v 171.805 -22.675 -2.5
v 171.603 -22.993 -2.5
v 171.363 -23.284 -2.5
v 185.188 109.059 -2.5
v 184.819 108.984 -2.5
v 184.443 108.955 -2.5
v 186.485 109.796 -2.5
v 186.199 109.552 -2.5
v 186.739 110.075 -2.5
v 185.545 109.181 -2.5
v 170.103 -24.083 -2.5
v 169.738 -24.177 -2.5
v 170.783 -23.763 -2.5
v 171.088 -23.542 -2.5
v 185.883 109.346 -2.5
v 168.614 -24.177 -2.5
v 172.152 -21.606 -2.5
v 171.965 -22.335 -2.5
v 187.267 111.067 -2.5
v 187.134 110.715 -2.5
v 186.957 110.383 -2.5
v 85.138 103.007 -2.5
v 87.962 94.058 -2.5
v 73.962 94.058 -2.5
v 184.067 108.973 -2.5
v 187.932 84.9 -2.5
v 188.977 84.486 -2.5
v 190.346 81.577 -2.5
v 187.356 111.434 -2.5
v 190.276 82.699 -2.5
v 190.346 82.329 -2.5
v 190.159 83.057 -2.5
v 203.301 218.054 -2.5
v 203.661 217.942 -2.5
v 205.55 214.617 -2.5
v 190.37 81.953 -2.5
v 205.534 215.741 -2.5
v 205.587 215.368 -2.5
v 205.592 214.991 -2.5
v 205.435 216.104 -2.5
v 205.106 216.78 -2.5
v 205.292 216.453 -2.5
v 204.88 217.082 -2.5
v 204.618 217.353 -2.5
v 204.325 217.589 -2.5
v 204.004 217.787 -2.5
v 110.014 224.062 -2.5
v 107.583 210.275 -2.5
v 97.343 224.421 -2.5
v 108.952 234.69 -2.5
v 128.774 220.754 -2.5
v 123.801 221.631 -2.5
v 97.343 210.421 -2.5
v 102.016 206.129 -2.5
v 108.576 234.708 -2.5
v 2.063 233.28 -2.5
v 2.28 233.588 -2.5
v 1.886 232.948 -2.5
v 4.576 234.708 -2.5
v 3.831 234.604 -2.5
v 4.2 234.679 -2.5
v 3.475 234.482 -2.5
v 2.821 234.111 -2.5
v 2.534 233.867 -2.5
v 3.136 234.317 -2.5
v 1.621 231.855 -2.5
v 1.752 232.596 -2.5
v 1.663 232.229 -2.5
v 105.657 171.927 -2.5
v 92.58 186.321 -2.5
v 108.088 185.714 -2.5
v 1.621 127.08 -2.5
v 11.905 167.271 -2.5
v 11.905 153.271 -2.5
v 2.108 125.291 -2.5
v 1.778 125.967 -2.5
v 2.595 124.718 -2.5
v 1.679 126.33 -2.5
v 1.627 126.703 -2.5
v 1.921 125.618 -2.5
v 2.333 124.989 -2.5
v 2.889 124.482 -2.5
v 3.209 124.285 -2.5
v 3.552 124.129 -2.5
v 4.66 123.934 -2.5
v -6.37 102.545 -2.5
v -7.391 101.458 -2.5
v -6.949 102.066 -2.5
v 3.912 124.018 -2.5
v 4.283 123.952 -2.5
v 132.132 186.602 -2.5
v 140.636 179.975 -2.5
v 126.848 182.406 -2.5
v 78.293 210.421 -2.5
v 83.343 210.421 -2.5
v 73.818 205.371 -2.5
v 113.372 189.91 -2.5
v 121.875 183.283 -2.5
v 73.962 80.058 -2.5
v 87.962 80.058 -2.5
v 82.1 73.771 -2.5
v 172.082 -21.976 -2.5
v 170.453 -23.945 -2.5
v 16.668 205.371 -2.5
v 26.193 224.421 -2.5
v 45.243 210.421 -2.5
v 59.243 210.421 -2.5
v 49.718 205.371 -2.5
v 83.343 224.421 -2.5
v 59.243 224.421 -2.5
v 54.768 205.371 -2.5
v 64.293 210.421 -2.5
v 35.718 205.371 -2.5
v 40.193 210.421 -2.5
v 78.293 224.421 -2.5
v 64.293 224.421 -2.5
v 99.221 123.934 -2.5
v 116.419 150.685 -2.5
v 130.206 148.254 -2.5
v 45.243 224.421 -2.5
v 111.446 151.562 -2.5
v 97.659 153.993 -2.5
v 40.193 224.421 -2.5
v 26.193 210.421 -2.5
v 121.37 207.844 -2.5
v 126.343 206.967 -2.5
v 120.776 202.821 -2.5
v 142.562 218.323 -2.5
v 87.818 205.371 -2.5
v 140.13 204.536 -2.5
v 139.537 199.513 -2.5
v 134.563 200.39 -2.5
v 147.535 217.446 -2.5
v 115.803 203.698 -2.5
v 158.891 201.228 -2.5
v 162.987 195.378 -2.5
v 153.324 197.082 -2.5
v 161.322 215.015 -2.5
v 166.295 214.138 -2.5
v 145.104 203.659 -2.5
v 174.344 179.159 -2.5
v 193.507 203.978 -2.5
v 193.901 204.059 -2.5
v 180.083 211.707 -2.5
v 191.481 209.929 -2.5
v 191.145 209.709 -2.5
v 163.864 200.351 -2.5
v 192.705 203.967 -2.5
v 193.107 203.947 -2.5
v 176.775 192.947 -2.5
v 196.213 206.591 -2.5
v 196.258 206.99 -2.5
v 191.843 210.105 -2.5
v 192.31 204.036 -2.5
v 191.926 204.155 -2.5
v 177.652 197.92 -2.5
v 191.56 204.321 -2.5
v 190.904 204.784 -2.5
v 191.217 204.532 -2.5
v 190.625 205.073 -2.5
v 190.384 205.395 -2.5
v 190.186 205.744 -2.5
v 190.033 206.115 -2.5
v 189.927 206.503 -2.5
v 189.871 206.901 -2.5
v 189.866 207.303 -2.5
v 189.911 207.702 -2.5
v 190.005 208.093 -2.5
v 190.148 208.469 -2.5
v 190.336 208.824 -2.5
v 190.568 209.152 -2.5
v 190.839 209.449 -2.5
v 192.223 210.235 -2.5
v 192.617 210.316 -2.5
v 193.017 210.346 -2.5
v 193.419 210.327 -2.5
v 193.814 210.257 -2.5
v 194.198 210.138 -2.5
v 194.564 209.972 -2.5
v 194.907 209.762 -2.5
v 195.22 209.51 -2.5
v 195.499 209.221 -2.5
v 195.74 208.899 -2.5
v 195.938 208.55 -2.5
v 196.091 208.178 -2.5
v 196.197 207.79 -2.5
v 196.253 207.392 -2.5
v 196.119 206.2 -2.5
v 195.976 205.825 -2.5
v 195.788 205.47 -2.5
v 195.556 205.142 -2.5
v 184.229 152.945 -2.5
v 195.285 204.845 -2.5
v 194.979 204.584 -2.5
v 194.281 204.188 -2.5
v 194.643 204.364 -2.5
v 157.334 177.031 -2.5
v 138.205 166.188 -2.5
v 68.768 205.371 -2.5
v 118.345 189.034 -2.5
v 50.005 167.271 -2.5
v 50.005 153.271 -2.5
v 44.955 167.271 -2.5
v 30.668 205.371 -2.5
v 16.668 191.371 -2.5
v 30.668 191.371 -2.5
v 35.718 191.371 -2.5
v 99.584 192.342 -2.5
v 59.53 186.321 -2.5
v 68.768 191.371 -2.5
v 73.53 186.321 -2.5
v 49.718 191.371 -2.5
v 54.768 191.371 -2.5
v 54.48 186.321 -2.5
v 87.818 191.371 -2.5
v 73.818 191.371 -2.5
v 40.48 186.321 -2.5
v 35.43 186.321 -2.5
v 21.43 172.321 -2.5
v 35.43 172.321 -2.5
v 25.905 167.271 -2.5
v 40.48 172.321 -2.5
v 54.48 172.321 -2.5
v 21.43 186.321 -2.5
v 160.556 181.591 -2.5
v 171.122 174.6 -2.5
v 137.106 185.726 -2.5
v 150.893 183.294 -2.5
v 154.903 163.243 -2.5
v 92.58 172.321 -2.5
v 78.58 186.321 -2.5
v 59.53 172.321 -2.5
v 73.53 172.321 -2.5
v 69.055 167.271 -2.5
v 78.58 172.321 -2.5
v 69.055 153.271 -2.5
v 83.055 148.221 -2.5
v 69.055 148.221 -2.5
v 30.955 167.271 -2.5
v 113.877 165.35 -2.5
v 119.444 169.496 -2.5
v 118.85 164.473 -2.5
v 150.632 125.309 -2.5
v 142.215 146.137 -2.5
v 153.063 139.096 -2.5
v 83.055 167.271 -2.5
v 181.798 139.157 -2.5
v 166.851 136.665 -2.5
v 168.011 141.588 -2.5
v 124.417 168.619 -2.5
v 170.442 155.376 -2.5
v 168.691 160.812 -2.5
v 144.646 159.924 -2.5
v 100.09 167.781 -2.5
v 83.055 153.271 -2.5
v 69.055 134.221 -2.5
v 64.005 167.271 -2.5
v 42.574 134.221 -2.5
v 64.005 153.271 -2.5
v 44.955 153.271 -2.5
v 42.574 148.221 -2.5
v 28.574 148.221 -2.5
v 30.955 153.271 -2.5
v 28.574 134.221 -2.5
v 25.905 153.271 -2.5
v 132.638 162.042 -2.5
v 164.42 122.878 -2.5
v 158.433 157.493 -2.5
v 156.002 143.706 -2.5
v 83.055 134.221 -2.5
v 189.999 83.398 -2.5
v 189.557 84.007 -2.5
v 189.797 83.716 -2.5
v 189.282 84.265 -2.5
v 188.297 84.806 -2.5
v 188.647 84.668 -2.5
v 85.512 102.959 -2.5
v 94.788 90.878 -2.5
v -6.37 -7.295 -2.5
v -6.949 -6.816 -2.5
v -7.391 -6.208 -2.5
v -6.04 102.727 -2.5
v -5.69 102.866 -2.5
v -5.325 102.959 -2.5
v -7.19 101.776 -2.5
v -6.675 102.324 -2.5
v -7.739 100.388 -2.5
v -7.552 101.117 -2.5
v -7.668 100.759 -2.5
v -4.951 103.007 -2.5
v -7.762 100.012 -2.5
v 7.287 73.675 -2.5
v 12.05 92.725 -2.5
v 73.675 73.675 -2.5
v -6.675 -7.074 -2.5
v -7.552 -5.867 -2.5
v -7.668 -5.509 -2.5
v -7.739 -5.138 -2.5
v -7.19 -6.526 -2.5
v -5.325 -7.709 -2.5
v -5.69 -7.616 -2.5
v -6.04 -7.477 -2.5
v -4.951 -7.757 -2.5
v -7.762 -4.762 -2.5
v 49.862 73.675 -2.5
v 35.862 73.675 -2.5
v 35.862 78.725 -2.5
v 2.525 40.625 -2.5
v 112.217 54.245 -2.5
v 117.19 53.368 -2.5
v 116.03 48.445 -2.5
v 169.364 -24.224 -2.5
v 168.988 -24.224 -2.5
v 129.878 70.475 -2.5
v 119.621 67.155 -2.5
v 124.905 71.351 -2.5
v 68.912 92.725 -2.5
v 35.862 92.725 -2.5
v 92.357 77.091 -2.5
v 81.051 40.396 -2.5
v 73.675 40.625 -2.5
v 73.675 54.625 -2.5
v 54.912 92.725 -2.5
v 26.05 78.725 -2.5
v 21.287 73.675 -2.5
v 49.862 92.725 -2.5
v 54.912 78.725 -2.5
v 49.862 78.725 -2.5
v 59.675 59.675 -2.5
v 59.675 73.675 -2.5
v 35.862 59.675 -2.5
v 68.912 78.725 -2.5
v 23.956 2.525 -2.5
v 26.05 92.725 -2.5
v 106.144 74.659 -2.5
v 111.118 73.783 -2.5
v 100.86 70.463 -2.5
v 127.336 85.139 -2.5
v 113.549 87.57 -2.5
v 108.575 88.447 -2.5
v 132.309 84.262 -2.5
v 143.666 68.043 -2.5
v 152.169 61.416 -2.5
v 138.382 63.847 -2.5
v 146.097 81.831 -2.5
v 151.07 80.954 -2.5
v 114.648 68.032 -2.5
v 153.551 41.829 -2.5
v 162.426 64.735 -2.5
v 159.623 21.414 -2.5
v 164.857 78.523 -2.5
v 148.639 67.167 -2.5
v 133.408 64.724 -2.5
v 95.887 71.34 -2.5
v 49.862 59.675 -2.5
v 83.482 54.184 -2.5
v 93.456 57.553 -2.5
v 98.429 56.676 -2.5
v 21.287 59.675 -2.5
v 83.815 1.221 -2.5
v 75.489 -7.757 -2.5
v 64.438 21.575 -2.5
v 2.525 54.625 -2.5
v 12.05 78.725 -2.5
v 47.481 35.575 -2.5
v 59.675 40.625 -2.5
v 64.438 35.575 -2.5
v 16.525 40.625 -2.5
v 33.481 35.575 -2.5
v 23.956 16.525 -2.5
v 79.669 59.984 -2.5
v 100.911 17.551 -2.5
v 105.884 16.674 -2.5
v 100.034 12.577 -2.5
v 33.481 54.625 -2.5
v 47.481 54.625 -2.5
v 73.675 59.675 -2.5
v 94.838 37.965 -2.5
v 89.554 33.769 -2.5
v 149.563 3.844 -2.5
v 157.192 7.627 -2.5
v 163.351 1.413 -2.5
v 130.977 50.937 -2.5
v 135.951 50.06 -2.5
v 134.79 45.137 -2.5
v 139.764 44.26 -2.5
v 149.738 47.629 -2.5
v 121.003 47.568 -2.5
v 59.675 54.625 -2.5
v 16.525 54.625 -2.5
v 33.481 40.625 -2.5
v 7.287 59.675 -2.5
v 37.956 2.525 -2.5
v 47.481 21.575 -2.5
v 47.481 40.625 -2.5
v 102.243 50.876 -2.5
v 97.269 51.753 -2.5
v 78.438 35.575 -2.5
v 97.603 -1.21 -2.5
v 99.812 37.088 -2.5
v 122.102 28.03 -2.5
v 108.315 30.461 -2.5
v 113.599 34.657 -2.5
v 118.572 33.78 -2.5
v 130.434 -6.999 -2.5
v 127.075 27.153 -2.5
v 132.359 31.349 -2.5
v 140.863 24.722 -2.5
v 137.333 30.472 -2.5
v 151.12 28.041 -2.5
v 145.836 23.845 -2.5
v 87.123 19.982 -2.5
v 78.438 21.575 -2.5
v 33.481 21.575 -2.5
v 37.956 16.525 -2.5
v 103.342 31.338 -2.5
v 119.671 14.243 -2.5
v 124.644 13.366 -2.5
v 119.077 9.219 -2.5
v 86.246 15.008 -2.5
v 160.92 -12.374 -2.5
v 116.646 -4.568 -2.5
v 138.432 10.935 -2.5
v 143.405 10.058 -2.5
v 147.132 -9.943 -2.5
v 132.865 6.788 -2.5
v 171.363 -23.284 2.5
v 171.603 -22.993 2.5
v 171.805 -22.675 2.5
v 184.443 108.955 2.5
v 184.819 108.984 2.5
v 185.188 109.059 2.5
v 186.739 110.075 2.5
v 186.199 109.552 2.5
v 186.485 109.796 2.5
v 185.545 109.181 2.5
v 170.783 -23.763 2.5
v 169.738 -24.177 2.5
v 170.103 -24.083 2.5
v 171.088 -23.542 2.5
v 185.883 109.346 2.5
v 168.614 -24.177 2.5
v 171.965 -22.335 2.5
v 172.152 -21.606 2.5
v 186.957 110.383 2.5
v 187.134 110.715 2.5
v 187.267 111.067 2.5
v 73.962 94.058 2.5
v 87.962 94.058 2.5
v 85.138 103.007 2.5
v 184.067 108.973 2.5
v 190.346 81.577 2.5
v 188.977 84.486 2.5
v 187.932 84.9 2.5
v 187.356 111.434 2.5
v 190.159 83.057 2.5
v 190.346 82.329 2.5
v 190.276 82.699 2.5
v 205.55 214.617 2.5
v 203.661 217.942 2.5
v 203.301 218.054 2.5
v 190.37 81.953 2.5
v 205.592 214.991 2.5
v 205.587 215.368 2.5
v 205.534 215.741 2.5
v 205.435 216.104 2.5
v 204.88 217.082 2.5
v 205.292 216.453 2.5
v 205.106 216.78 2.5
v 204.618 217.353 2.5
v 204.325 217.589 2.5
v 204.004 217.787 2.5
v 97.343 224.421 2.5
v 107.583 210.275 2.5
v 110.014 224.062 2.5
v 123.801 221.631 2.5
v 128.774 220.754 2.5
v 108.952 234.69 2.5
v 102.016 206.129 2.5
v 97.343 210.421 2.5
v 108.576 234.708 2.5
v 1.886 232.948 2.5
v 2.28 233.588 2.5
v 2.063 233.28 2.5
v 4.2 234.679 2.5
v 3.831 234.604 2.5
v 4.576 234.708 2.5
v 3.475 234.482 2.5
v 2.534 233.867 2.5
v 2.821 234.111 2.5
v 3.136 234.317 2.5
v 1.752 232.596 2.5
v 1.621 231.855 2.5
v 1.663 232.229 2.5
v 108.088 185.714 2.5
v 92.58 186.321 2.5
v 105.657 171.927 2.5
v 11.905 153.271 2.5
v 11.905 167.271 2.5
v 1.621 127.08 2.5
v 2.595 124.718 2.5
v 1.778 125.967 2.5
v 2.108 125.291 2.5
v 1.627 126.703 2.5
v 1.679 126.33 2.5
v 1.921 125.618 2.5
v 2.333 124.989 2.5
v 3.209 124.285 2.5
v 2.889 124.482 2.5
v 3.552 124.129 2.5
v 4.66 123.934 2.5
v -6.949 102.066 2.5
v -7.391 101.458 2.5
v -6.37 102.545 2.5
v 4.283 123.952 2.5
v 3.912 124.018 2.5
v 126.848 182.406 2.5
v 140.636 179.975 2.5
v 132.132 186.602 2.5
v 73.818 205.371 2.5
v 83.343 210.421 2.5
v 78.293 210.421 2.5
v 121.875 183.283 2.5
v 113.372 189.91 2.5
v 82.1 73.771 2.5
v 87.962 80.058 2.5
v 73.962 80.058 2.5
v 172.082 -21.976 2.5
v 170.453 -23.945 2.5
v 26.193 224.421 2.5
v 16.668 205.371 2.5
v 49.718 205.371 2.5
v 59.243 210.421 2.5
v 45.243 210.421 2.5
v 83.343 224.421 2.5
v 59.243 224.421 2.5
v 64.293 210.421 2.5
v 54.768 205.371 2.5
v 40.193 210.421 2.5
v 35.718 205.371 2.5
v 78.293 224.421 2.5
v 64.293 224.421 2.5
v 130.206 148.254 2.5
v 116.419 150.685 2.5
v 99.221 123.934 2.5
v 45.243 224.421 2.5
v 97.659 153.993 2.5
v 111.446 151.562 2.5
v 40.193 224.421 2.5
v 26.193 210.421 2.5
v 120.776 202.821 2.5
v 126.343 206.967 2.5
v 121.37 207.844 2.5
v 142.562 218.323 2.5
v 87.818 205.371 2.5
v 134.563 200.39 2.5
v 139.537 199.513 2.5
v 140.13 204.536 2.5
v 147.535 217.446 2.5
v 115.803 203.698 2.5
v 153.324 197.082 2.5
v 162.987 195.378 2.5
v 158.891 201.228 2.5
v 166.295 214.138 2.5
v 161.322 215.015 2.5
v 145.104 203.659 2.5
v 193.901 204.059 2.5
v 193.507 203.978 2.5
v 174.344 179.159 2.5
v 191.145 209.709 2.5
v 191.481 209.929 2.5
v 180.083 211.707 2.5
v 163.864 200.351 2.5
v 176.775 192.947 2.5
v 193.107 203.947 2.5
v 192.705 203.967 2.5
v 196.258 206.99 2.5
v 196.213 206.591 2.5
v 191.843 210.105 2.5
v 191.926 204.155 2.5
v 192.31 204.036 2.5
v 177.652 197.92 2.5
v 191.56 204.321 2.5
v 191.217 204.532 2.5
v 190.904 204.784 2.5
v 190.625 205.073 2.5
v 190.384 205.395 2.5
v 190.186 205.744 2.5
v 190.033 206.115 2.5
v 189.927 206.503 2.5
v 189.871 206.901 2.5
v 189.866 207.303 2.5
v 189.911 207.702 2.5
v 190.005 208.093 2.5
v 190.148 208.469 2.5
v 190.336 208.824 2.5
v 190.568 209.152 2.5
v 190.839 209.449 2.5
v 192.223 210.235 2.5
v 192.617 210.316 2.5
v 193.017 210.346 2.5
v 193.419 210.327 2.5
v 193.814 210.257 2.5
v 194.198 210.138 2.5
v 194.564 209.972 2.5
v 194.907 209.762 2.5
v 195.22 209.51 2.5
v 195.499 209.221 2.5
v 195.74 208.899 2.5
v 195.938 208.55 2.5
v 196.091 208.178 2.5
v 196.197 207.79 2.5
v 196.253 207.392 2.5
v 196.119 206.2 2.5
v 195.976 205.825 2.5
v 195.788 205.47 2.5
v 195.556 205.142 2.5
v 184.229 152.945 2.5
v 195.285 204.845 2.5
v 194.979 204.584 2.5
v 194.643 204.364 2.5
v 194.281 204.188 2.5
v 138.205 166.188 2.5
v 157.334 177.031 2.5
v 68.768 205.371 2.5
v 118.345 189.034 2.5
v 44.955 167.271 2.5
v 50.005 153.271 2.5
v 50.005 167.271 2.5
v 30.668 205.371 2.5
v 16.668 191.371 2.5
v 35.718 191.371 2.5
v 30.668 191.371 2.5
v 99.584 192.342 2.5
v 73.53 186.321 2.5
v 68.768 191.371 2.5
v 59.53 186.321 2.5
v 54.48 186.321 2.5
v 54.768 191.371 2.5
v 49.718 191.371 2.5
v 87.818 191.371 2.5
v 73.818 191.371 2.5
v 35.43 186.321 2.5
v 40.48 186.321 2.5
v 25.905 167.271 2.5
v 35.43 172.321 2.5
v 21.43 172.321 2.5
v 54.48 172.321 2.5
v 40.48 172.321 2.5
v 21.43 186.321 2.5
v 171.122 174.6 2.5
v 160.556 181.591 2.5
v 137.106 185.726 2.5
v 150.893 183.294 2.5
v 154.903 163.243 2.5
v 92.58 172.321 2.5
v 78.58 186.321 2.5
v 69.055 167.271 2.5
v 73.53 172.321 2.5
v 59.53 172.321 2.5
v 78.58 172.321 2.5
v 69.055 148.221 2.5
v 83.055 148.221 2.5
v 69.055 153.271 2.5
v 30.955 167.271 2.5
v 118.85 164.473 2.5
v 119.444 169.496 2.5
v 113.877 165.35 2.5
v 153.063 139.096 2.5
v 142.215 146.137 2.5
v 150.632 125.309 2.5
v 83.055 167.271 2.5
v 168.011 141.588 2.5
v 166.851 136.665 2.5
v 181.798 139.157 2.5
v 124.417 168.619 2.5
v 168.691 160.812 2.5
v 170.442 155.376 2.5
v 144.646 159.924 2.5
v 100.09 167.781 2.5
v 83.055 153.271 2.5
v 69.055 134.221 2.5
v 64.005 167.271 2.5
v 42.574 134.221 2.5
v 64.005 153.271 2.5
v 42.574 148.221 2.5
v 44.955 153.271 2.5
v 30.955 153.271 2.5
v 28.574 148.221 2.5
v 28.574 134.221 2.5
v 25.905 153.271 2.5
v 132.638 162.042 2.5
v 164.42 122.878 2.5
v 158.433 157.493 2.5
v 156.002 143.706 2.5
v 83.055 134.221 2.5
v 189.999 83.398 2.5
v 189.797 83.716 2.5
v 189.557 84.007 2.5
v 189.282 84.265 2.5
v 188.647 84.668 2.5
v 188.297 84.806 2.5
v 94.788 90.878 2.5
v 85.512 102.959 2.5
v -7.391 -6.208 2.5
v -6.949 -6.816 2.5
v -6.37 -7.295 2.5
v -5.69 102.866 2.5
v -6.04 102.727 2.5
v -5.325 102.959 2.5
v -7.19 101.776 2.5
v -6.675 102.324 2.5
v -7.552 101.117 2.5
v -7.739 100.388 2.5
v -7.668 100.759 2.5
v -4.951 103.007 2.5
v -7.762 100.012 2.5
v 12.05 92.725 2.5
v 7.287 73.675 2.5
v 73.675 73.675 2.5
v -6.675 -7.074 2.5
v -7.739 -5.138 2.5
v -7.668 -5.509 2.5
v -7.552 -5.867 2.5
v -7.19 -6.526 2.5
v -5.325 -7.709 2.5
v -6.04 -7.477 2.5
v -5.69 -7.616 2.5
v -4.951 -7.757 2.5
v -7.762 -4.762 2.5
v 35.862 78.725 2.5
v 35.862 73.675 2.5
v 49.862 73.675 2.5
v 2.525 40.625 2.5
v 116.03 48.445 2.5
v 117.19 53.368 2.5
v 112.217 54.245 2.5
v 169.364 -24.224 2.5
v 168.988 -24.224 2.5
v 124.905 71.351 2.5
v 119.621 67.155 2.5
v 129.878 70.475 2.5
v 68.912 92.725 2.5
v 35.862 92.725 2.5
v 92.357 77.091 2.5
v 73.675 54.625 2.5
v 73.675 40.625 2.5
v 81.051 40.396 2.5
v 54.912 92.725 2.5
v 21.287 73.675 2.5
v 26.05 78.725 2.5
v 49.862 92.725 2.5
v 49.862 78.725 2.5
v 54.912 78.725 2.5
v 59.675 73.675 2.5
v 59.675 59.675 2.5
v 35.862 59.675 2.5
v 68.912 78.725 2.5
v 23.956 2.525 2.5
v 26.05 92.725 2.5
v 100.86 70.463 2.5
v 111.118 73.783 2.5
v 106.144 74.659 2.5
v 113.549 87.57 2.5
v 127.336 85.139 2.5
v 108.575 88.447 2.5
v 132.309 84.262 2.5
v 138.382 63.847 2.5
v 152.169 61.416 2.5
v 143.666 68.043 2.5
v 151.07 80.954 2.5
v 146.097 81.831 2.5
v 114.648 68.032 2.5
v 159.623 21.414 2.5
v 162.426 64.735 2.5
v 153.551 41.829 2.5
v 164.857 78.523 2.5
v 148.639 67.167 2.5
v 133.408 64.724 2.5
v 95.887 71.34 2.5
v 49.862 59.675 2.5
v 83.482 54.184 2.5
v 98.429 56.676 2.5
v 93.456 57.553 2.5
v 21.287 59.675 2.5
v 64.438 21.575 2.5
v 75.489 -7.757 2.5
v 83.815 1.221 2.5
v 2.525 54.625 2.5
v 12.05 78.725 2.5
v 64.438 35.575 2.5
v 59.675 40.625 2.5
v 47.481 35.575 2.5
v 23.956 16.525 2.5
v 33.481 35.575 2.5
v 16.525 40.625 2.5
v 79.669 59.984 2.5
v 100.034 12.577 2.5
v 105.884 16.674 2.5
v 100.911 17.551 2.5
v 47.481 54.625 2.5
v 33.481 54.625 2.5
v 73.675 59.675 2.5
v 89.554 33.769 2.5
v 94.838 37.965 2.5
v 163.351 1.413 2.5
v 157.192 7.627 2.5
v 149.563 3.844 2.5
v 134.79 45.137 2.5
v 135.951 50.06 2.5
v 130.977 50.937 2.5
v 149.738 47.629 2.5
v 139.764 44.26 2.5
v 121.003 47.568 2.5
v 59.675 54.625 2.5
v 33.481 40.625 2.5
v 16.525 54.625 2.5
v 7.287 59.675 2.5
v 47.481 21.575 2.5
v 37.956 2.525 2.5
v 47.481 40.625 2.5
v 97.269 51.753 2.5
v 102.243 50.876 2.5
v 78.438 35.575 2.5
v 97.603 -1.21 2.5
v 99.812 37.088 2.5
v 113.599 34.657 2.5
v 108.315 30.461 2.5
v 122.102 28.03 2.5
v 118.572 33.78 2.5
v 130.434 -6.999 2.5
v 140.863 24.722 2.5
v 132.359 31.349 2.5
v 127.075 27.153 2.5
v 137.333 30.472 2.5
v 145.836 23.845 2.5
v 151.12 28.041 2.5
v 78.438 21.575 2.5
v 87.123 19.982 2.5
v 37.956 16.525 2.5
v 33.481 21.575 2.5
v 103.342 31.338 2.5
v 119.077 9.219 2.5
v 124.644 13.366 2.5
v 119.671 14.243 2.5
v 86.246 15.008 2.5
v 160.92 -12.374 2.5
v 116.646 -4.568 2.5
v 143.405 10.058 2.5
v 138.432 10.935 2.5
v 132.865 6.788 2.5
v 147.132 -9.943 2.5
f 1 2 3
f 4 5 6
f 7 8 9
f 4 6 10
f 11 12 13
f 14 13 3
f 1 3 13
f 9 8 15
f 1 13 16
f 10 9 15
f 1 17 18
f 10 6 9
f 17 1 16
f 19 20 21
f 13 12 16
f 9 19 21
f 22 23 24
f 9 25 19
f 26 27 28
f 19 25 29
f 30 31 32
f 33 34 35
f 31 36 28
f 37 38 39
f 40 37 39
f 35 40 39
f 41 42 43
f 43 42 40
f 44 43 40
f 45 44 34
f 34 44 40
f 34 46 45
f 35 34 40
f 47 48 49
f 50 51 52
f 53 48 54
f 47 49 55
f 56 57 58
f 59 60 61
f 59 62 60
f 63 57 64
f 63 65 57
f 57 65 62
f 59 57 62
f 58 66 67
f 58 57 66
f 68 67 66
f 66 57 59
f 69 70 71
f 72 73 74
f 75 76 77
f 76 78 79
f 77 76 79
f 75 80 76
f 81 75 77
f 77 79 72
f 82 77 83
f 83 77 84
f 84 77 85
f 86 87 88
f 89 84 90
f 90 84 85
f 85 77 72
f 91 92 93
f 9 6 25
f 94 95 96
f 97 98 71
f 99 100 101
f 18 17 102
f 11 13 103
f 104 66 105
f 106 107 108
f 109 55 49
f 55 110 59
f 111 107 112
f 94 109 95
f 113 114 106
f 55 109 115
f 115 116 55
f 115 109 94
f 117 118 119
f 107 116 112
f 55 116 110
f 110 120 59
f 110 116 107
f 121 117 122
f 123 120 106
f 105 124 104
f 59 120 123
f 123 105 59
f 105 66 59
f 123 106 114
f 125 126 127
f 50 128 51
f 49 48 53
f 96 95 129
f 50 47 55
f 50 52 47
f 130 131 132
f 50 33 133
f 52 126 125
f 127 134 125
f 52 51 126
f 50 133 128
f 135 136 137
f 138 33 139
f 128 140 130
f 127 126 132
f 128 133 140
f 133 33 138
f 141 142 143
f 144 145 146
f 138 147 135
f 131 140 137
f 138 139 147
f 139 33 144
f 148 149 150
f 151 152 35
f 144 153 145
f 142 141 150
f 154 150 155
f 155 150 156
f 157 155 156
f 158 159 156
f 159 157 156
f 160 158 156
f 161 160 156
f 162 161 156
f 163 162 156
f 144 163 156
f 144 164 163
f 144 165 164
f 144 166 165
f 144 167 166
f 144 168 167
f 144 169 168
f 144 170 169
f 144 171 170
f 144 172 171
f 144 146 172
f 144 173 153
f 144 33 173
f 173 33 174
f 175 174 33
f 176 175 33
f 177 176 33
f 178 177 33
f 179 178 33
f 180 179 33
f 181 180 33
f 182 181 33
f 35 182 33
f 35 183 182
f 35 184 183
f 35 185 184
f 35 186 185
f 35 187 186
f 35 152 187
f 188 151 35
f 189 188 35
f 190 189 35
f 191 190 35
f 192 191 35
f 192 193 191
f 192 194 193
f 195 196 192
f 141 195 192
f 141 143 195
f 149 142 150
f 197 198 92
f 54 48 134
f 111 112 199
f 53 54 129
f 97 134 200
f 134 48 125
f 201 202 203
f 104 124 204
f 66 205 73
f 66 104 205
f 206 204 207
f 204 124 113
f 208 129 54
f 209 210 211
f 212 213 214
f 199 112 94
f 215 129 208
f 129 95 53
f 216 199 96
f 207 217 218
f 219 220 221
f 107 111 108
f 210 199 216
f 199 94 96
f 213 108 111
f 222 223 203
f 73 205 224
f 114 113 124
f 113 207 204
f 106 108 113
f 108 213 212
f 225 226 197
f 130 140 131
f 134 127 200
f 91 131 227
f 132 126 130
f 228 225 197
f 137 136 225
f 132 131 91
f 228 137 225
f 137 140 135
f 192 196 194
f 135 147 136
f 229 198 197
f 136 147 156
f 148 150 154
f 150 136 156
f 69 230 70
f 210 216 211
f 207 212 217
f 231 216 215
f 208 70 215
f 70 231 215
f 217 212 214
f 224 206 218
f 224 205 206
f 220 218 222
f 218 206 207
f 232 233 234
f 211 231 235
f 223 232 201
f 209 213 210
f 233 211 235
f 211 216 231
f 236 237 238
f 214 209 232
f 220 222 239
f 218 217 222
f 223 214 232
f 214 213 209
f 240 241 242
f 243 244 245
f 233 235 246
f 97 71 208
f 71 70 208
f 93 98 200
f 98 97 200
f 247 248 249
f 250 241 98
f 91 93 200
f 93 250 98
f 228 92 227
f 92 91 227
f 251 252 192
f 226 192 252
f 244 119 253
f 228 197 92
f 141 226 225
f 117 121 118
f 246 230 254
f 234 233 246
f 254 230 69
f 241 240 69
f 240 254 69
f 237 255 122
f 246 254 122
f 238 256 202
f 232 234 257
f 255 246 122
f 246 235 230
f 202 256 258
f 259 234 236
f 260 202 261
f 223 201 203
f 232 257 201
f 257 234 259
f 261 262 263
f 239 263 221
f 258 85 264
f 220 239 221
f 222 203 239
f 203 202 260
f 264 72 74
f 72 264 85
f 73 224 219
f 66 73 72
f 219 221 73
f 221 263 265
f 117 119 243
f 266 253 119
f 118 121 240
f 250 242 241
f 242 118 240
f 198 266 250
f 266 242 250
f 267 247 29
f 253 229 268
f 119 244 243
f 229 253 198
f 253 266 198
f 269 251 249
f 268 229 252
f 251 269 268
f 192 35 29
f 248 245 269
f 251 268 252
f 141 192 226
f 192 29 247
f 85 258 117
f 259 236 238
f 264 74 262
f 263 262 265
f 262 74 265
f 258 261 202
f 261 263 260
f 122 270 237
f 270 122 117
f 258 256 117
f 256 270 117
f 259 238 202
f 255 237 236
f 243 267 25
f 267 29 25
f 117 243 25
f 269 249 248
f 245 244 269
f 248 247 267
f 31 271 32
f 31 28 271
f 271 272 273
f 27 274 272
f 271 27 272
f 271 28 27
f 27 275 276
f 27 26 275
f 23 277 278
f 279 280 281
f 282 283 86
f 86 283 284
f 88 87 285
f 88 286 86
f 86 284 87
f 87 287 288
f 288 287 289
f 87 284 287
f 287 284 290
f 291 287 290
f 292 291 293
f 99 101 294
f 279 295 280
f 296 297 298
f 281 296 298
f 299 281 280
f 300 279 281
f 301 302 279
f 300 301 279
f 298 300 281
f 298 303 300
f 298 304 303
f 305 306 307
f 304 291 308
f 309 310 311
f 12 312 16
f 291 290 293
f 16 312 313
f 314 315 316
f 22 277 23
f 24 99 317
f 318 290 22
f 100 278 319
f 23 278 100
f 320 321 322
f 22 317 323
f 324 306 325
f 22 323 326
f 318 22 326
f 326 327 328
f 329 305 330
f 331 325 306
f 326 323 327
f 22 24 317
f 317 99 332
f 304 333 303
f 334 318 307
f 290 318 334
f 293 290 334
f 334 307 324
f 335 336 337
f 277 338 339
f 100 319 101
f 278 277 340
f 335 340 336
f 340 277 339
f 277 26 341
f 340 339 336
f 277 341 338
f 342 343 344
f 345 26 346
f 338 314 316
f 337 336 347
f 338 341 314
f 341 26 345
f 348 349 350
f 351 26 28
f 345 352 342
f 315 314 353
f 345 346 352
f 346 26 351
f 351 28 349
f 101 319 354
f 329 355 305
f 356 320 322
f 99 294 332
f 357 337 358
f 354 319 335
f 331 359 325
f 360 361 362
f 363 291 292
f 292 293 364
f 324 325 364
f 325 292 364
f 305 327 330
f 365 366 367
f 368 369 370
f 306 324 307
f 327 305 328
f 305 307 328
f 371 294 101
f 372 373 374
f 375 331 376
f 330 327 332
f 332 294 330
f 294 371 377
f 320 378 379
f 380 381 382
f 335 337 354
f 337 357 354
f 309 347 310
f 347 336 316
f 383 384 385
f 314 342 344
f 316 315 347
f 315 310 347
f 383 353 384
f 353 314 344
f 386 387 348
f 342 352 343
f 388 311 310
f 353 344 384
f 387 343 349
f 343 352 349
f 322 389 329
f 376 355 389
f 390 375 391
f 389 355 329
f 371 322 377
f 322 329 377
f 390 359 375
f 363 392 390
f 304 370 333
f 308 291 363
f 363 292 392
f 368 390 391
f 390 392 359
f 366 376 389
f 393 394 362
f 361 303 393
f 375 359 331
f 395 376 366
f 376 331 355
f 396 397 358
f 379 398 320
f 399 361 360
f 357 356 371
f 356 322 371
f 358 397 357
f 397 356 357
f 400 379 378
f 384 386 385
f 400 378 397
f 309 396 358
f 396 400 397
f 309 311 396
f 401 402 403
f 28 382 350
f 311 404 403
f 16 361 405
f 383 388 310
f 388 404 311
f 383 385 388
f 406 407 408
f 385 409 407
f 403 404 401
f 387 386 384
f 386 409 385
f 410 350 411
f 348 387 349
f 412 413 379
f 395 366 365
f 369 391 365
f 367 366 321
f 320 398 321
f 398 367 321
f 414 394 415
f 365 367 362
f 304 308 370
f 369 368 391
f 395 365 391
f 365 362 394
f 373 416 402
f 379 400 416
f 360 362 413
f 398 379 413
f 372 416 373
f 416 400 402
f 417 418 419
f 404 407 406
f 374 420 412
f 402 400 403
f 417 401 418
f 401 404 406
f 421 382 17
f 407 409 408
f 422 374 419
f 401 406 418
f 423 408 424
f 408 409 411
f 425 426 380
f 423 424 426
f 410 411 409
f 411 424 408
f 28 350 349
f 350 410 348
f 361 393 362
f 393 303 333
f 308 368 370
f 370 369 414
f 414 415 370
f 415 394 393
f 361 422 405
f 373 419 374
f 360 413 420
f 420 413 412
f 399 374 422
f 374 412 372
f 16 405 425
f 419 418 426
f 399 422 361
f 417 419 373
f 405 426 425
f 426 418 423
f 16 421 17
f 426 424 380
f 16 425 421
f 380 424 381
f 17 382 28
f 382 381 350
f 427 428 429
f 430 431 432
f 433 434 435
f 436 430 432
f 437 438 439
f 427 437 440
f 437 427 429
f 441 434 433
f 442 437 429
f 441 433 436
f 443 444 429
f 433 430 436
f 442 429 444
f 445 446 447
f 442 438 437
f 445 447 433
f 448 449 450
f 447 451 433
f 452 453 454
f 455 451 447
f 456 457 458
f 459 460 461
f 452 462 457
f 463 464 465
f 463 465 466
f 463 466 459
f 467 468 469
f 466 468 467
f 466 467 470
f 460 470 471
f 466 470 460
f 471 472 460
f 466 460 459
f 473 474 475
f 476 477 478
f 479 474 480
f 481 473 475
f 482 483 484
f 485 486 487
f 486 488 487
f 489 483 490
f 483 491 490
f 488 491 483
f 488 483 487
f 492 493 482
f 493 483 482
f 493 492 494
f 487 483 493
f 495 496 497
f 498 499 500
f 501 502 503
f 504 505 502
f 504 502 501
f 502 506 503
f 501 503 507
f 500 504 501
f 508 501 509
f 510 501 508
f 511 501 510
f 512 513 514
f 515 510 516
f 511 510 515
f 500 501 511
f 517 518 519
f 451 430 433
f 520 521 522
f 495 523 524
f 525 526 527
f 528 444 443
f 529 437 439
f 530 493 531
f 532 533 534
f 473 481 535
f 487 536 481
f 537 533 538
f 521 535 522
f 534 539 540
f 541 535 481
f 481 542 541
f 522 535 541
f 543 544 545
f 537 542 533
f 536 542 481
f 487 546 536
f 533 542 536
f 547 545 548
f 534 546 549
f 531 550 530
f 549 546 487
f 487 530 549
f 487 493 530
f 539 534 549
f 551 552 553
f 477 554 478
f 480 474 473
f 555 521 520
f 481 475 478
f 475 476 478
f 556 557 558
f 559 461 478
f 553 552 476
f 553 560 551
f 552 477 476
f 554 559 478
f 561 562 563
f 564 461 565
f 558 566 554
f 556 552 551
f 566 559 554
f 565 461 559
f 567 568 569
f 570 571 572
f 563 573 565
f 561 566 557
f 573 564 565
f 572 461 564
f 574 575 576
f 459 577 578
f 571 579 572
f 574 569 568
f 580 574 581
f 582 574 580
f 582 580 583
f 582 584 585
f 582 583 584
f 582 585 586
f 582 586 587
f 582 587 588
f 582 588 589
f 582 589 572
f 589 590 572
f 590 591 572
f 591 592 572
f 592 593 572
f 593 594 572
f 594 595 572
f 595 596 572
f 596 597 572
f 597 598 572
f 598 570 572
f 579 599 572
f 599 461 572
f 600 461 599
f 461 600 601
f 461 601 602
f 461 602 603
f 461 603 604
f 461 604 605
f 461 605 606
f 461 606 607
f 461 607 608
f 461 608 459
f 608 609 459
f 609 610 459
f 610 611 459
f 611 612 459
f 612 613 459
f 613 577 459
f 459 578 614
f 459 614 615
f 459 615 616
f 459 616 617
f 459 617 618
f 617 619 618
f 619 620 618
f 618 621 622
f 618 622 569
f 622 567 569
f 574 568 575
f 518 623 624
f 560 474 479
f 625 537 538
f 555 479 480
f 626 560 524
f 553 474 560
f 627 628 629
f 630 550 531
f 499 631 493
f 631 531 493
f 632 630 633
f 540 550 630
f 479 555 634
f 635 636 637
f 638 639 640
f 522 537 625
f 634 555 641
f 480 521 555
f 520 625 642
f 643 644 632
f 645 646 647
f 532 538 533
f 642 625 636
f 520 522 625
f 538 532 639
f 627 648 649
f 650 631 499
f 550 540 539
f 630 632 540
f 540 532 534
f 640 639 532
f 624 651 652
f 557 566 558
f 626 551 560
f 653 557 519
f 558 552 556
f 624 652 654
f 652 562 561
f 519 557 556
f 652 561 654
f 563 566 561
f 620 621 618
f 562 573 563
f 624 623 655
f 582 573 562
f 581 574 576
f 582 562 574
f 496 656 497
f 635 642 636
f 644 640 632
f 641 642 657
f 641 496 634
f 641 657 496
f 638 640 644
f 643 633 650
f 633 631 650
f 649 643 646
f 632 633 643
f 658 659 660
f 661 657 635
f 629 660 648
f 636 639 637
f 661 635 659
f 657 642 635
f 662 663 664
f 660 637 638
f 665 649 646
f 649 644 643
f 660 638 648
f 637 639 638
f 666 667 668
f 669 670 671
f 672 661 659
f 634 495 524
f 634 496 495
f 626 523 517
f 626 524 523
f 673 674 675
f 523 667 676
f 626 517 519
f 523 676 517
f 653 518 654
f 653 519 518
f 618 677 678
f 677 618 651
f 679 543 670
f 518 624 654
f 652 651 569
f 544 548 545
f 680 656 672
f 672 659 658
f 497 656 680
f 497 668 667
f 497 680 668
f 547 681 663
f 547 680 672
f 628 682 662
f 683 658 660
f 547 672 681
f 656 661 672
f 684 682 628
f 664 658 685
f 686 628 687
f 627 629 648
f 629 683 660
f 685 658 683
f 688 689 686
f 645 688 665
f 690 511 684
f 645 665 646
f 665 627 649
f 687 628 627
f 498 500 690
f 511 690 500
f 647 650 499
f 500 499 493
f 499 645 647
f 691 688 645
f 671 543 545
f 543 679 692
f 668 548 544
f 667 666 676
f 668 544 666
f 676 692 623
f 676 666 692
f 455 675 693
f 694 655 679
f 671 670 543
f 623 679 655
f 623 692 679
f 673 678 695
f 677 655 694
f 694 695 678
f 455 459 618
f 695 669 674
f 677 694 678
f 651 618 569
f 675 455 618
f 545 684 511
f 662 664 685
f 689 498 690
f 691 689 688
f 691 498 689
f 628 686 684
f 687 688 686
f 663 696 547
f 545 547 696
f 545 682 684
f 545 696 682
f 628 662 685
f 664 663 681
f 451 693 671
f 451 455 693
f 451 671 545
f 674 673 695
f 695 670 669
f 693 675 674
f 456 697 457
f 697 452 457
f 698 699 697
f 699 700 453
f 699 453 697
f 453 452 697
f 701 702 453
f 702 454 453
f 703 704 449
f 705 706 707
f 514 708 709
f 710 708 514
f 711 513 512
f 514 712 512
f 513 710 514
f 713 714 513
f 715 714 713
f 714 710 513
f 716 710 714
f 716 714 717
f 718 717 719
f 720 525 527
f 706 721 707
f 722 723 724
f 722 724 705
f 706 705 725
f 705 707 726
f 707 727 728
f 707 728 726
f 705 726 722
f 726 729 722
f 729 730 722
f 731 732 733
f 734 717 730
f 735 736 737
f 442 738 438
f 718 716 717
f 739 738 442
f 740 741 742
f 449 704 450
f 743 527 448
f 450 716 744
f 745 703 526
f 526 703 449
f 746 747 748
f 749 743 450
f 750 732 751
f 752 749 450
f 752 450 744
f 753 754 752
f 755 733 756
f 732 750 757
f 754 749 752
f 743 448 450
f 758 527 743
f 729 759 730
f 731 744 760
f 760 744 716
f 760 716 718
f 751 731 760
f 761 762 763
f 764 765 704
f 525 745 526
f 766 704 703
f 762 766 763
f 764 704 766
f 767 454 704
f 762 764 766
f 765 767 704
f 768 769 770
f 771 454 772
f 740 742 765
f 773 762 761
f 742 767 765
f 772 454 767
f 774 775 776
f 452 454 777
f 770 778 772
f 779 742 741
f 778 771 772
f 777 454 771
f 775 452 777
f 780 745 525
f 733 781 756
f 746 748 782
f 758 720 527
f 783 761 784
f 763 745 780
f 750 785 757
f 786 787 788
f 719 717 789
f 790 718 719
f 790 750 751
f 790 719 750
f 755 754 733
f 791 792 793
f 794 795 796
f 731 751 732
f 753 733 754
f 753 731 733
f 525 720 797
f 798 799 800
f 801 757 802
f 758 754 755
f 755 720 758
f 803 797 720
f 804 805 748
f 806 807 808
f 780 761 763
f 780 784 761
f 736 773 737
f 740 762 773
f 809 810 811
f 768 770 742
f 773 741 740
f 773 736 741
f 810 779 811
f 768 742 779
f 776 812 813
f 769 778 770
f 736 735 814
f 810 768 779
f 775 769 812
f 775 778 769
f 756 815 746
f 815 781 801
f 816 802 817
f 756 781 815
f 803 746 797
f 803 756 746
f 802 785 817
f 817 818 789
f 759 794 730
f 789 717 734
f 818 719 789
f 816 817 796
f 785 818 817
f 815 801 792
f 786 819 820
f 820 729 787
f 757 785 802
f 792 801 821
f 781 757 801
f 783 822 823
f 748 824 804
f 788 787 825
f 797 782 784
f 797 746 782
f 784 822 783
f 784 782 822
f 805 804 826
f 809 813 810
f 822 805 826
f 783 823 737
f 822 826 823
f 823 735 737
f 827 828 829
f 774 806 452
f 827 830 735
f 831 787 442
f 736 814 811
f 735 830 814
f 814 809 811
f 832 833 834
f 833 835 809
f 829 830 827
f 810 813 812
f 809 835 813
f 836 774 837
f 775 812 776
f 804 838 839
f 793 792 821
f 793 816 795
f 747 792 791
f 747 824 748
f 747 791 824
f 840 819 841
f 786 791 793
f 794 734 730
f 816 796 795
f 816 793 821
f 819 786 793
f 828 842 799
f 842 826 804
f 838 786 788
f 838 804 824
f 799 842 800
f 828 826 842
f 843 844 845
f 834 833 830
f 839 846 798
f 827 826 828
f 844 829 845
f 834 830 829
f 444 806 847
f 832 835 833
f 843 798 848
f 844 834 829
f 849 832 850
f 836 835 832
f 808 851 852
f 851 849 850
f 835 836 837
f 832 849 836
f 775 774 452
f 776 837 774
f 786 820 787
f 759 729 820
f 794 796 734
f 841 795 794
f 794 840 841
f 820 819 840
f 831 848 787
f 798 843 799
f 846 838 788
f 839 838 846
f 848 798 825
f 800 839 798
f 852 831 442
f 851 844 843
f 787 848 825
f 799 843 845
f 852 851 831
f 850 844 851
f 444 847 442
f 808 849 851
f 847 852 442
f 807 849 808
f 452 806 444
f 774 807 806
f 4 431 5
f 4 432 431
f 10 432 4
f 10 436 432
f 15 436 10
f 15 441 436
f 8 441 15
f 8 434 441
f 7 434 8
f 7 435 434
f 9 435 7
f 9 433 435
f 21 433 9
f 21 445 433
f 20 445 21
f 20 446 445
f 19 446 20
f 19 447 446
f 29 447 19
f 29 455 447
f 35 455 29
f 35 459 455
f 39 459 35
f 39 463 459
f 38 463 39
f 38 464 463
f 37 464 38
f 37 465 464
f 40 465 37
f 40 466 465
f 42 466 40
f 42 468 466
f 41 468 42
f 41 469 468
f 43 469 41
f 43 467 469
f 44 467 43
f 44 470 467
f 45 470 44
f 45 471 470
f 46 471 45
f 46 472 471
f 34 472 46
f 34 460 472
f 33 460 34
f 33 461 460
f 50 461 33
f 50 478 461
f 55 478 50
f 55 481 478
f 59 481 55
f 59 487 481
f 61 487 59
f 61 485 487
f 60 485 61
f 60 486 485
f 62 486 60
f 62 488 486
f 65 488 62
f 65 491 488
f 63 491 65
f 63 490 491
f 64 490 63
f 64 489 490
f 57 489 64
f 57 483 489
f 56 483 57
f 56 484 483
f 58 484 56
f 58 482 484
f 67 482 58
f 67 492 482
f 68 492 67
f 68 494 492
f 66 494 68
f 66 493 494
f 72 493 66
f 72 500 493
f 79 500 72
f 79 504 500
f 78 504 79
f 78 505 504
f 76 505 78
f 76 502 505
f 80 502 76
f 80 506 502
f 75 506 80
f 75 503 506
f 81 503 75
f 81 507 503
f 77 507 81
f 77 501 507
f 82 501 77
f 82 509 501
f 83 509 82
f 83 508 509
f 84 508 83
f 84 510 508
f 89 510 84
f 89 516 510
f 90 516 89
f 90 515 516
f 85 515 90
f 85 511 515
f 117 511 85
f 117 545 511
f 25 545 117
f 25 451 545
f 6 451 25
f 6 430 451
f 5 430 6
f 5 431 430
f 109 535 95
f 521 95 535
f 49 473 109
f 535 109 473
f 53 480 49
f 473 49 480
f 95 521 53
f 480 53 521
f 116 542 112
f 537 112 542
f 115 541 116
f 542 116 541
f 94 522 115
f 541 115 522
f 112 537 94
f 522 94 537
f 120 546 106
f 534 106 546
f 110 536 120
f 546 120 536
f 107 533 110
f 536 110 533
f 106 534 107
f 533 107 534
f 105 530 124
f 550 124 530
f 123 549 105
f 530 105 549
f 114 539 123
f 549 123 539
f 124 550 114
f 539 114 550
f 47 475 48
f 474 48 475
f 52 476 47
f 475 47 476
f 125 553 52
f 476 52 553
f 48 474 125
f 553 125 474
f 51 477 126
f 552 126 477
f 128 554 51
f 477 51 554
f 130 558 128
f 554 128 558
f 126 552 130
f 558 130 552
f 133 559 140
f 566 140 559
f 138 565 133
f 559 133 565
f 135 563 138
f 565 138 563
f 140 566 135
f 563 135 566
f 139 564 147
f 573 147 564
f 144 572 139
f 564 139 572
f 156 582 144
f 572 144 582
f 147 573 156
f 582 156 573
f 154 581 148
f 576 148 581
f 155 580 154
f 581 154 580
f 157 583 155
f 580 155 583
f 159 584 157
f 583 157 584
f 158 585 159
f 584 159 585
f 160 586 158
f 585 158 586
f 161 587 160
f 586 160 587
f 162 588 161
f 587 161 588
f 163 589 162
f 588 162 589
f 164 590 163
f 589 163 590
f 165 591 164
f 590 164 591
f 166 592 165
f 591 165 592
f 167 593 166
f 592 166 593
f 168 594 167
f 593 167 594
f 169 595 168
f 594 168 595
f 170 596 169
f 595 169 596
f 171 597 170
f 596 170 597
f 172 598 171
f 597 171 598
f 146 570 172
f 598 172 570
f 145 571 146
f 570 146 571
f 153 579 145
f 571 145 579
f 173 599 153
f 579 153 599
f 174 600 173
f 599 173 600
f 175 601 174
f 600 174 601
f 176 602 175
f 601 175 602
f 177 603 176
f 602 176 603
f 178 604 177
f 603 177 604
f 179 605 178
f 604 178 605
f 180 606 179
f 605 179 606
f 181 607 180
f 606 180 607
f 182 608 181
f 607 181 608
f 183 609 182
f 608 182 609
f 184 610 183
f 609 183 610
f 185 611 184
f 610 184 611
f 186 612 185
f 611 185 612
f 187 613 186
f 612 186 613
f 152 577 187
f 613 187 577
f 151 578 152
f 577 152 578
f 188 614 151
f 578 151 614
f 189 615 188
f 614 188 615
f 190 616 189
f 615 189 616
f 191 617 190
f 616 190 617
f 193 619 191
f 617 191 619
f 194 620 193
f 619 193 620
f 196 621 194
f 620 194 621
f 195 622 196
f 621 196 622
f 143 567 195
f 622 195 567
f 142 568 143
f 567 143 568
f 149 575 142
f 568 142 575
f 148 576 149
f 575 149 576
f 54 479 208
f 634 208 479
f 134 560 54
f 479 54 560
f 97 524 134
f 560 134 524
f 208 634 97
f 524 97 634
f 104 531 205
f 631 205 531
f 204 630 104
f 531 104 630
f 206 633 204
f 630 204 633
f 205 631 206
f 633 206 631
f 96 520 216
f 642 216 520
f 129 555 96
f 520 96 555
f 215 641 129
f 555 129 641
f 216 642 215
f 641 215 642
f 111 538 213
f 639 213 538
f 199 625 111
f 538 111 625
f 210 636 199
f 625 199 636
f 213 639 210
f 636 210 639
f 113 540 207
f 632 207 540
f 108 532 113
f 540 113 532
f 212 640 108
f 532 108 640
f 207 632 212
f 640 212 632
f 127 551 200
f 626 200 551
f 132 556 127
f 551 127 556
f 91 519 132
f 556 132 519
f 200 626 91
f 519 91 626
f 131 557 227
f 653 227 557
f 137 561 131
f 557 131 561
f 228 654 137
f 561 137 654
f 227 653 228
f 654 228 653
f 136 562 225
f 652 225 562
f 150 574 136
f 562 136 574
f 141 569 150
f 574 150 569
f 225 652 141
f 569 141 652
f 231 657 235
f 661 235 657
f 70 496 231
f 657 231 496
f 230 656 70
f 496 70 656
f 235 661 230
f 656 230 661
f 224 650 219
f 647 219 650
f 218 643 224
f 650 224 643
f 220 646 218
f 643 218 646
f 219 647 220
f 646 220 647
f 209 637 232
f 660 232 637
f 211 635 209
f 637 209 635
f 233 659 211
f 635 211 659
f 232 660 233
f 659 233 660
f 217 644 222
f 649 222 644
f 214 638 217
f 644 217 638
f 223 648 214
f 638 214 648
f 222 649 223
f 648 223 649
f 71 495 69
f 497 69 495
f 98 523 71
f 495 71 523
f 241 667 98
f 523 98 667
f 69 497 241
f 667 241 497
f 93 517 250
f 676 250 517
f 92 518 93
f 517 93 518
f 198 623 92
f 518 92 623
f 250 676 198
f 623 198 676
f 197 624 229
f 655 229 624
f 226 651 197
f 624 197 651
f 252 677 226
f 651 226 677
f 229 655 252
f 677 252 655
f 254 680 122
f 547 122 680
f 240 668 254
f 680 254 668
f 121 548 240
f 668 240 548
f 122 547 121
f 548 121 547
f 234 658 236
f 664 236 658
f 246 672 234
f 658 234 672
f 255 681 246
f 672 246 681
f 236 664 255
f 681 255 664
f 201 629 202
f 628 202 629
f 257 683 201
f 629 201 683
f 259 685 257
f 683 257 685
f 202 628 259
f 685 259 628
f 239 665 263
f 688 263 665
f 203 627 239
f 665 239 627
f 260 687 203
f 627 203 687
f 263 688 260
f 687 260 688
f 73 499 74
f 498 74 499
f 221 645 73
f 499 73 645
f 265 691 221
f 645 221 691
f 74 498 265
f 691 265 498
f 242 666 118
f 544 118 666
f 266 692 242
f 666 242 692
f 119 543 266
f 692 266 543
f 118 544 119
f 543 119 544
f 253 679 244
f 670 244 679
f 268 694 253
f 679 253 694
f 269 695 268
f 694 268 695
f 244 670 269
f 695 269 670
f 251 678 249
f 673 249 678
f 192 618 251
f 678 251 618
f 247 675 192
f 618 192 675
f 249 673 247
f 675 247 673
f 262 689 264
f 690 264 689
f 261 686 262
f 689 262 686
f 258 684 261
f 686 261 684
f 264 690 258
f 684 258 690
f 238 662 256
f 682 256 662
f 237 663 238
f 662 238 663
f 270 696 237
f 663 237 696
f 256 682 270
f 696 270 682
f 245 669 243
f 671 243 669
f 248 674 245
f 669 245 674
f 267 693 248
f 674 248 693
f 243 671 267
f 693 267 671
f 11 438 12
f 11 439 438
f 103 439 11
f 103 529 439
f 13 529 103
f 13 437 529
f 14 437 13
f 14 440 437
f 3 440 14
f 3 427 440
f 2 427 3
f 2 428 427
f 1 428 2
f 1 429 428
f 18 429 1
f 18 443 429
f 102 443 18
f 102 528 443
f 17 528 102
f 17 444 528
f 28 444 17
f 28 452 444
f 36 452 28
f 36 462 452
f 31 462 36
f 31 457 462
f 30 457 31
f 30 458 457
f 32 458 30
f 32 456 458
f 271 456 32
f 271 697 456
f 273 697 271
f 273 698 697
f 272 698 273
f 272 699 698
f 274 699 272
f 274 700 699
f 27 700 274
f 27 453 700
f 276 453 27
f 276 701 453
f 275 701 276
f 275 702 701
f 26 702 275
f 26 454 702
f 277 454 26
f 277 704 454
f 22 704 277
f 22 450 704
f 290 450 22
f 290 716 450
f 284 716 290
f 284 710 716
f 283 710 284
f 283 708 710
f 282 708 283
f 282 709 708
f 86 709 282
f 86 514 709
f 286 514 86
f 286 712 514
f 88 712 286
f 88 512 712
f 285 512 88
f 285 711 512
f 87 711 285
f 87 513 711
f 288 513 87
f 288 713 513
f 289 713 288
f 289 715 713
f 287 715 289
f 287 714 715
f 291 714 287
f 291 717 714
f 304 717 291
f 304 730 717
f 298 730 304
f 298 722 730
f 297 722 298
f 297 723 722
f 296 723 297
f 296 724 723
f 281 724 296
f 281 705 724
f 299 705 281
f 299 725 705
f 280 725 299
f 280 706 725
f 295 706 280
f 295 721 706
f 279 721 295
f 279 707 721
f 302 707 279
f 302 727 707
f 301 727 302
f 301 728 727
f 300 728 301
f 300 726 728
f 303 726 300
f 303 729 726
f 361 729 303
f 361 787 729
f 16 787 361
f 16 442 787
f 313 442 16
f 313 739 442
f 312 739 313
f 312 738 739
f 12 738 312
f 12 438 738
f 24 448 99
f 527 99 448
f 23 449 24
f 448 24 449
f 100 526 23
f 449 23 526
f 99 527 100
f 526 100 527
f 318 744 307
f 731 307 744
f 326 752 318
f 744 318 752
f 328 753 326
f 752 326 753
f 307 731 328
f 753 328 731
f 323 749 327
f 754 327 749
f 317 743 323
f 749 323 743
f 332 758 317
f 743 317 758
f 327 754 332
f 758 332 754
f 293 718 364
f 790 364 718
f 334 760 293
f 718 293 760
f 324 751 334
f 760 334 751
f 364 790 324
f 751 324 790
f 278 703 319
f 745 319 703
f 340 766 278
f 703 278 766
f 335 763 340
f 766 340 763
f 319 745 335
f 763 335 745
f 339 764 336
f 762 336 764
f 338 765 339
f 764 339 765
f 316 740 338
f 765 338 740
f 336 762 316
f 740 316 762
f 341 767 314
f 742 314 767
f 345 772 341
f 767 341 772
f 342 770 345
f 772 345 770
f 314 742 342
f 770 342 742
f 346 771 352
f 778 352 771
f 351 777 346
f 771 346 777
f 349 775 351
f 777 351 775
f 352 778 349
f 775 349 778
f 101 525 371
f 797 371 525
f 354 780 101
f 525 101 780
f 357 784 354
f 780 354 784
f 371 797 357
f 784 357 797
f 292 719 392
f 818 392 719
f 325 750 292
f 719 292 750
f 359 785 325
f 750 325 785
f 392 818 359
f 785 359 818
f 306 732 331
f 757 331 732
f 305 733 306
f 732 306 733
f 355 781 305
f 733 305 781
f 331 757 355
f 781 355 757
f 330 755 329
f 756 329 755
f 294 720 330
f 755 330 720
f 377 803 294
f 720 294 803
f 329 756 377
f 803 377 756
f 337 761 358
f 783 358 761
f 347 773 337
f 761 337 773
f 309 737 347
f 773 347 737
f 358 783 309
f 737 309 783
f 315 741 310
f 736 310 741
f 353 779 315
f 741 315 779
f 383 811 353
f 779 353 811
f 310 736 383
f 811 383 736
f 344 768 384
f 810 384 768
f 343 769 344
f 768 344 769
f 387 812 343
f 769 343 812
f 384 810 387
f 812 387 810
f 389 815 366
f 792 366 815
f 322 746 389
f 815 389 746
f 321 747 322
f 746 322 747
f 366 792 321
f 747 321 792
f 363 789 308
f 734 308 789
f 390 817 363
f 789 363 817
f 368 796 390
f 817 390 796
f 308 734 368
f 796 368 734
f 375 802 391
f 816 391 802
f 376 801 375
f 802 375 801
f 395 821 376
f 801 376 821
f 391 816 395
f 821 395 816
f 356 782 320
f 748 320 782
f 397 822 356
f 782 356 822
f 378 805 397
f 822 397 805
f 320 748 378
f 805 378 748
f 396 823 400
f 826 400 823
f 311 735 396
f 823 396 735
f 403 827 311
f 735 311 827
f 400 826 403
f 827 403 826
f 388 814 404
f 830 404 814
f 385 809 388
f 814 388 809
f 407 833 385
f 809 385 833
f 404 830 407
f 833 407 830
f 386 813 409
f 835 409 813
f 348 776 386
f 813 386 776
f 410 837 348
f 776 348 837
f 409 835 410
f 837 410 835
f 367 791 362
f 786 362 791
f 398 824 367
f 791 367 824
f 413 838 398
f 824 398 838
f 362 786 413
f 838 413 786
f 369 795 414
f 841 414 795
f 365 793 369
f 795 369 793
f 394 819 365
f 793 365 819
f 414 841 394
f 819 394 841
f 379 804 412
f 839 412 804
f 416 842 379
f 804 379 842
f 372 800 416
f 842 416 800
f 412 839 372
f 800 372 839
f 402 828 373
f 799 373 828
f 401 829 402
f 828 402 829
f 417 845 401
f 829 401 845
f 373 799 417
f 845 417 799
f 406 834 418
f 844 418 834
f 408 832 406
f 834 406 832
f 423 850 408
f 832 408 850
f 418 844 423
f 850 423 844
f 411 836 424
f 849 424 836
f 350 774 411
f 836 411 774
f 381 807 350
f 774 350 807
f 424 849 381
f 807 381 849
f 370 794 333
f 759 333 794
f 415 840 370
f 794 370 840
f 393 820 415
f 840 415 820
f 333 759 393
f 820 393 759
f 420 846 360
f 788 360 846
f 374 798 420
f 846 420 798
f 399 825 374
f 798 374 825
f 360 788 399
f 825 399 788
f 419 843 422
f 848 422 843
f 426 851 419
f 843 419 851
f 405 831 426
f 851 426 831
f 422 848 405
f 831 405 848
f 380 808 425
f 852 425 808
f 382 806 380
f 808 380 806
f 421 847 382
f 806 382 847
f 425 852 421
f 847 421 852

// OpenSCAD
// file: base.scad
/* 1u = 1mm */
$fn = 50;
$fa = 5;
$fs = 0.1;

// CONSTANTS
PLATE_PLACEHOLDER_SIZE = 19.05;
SWITCH_SIZE = 14; // Change to 18 to see keycap clearance
ROTATION = 10; // degrees
RIGHT_PLATE_OFFSET = 7;

PLATE_HEIGHT = 5;
OUTER_WIDTH = 3;
INNER_WIDTH = 1.5;

// https://cdn.matt3o.com/uploads/2018/05/keycap-size-diagram.png
module plate_placeholder(width=1) {
    translate([width*PLATE_PLACEHOLDER_SIZE/2, PLATE_PLACEHOLDER_SIZE/2])
        square([width*PLATE_PLACEHOLDER_SIZE, PLATE_PLACEHOLDER_SIZE], center=true); // keycap placeholder space
}

module switch(width=1) {
    translate([width*PLATE_PLACEHOLDER_SIZE/2, PLATE_PLACEHOLDER_SIZE/2])
        square([SWITCH_SIZE, SWITCH_SIZE], center=true);
}

function sum(row, i = 0, sum_so_far = 0) = len(row) == i ? sum_so_far : sum(row, i+1, sum_so_far+row[i]);

function accumulate_lengths(row, i = 0, sum=0) = len(row) - 1 == i ? [sum] :
    concat(sum, accumulate_lengths(row, i+1, sum+row[i]));

module cluster(keys, type) { // 2d array
    for (row_index = [0:len(keys)-1]) {
        row_lengths = accumulate_lengths(keys[row_index]);

        for (col_index = [1:len(keys[row_index])-1]) {
            x_offset = row_lengths[col_index];
            y_offset = len(keys)-1-row_index;
            size = keys[row_index][col_index];

            if (size >= 1) {
                if (type == "B") {
                    translate([x_offset * PLATE_PLACEHOLDER_SIZE, y_offset * PLATE_PLACEHOLDER_SIZE, 0])
                        switch(size);
                } else if (type == "A") {
                    translate([x_offset * PLATE_PLACEHOLDER_SIZE, y_offset * PLATE_PLACEHOLDER_SIZE, 0])
                        plate_placeholder(size);
                }
            }
        }
    }
}

module ky_040(type) {
    if (type == "B") {
        circle(6.4/2);
    } else if (type == "A") {
        circle(16/2);
    }
}

// LEFT CLUSTER
//        PAD  ESC PAD   MODS KEY
left_cluster = [[0.5,  1, 0.25, 1,    1],
                [0.25, 1, 0.25, 1.5,  1],
                [0,    1, 0.25, 1.75, 1],
                [1,             2.25, 1],
                [1,          1.25]];

left_center_cluster = [[0.5,  1,   1, 1, 1],
                       [0,    1,   1, 1, 1],
                       [0.25, 1,   1, 1, 1],
                       [0.75, 1,   1, 1, 1],
                       [0.50, 1.5, 2, 1.25]];

right_center_cluster = [[0.75, 1,   1, 1, 1],
                        [0.25, 1,   1, 1, 1],
                        [0.5,  1,   1, 1, 1],
                        [0,    1,   1, 1, 1],
                        [0,    2.75, 1.5]];

right_cluster = [[0.25,   1, 1, 1, 1],
                 [0,   1, 1, 1, 1.5],
                 [0.5,    1, 1, 2.25],
                 [0.25,   1, 1, 1.75, 1],
                 [3, 1.5]];

LEFT_CENTER_OFFSET = left_center_cluster[len(left_center_cluster) - 1][0];

WIDTH = 9;
HEIGHT = 5;
PADDING = 0.25;

module left(type, padding=PADDING) {
    LEFT_CENTER_LENGTH = sum(left_center_cluster[len(left_center_cluster) - 1]);

    module base() {
        difference() {
            union() {
                // left
                translate([-padding*PLATE_PLACEHOLDER_SIZE, -padding*PLATE_PLACEHOLDER_SIZE, 0])
                    square([(4.5+LEFT_CENTER_OFFSET+padding)*PLATE_PLACEHOLDER_SIZE, (HEIGHT+2*padding)*PLATE_PLACEHOLDER_SIZE]);

                // middle left
                translate([4*PLATE_PLACEHOLDER_SIZE, 0, 0])
                    rotate(a=[0, 0, -ROTATION])
                    translate([-LEFT_CENTER_OFFSET*PLATE_PLACEHOLDER_SIZE, -padding*PLATE_PLACEHOLDER_SIZE, 0])
                    square([(LEFT_CENTER_LENGTH+padding)*PLATE_PLACEHOLDER_SIZE, (HEIGHT+2*padding)*PLATE_PLACEHOLDER_SIZE]);
            };

            union() {
                // Scuffed: Take out top triangle
                translate([0, (HEIGHT+padding)*PLATE_PLACEHOLDER_SIZE, 0])
                    square([(LEFT_CENTER_LENGTH+1)*PLATE_PLACEHOLDER_SIZE, PLATE_PLACEHOLDER_SIZE]);

                // Scuffed: Take out center left triangle
                translate([4*PLATE_PLACEHOLDER_SIZE, 0, 0])
                    rotate(a=[0, 0, -ROTATION])
                    translate([-LEFT_CENTER_OFFSET*PLATE_PLACEHOLDER_SIZE, (HEIGHT+padding)*PLATE_PLACEHOLDER_SIZE, 0])
                    square([(LEFT_CENTER_LENGTH+1)*PLATE_PLACEHOLDER_SIZE, PLATE_PLACEHOLDER_SIZE]);
            };
        };
    };

    module cutouts() {
        union() {
            // left
            cluster(left_cluster, type);

            // center left
            translate([4*PLATE_PLACEHOLDER_SIZE, 0, 0])       // Move object to appropriate position
                rotate(a=[0, 0, -ROTATION])                 // Apply rotation, centered on bottom left key
                translate([-LEFT_CENTER_OFFSET*PLATE_PLACEHOLDER_SIZE, 0, 0]) // Translate bottom left cluster corner to 0,0
                cluster(left_center_cluster, type);

            // #2
            if (type == "B") {
                translate([3.75*PLATE_PLACEHOLDER_SIZE, 4.07*PLATE_PLACEHOLDER_SIZE, 0])
                    switch(1);
            } else if (type == "A") {
                translate([3.75*PLATE_PLACEHOLDER_SIZE, 4.07*PLATE_PLACEHOLDER_SIZE, 0])
                    plate_placeholder(1);
            }
        };
    };

    difference() {
        minkowski() {
            base();
            circle(OUTER_WIDTH);
        };
        cutouts();
    };
}

module right(type, padding=PADDING) {
    RIGHT_CENTER_MAX_LENGTH = sum(right_center_cluster[0]);
    RIGHT_LENGTH = sum(right_cluster[len(right_cluster) - 2]);

    module base() {
        difference(){
            union() {
                // center right
                translate([0.5 * PLATE_PLACEHOLDER_SIZE, 0, 0])
                    rotate(a=[0, 0, ROTATION])
                    translate([-(RIGHT_CENTER_MAX_LENGTH + padding)*PLATE_PLACEHOLDER_SIZE, -padding*PLATE_PLACEHOLDER_SIZE, 0])
                    square([(RIGHT_CENTER_MAX_LENGTH + 4*padding)*PLATE_PLACEHOLDER_SIZE, (HEIGHT+2*padding)*PLATE_PLACEHOLDER_SIZE]);

                // right
                translate([-(padding+0.2)*PLATE_PLACEHOLDER_SIZE, -padding*PLATE_PLACEHOLDER_SIZE, 0])
                    square([(RIGHT_LENGTH+2*padding)*PLATE_PLACEHOLDER_SIZE, (HEIGHT+2*padding)*PLATE_PLACEHOLDER_SIZE]);
            }

            union() {
                // Scuffed: Take out center right triangle
                translate([0.5 * PLATE_PLACEHOLDER_SIZE, 0, 0])
                    rotate(a=[0, 0, ROTATION])
                    translate([-(RIGHT_CENTER_MAX_LENGTH + padding)*PLATE_PLACEHOLDER_SIZE, (HEIGHT+padding)*PLATE_PLACEHOLDER_SIZE, 0])
                    square([(RIGHT_CENTER_MAX_LENGTH + 4*padding)*PLATE_PLACEHOLDER_SIZE, PLATE_PLACEHOLDER_SIZE]);

                // Scuffed: Take out top triangle
                translate([-(padding+0.2)*PLATE_PLACEHOLDER_SIZE, (HEIGHT+padding)*PLATE_PLACEHOLDER_SIZE, 0])
                    square([(RIGHT_LENGTH+2*padding)*PLATE_PLACEHOLDER_SIZE, PLATE_PLACEHOLDER_SIZE]);
            }
        }
    };

    module cutouts() {
        // center right
        translate([0.5 * PLATE_PLACEHOLDER_SIZE, 0, 0])
            rotate(a=[0, 0, ROTATION])
            translate([-(RIGHT_CENTER_MAX_LENGTH) * PLATE_PLACEHOLDER_SIZE, 0, 0]) // Translate bottom right cluster corner to 0,0
            cluster(right_center_cluster, type);

        // right
        translate([-0.2 * PLATE_PLACEHOLDER_SIZE, 0, 0])
            cluster(right_cluster, type);

        translate([(RIGHT_CENTER_MAX_LENGTH-0.12)*PLATE_PLACEHOLDER_SIZE, (5-0.25)*PLATE_PLACEHOLDER_SIZE,0])
            ky_040(type);
    };

    translate([RIGHT_CENTER_MAX_LENGTH * PLATE_PLACEHOLDER_SIZE, RIGHT_PLATE_OFFSET * PLATE_PLACEHOLDER_SIZE, 0])
        rotate(a=[0, 0, -ROTATION])
        difference() {
            minkowski() {
                base();
                circle(OUTER_WIDTH);
            };
            cutouts();
        };
}
// main file
include <base.scad>;

linear_extrude(height=PLATE_HEIGHT, center=true)
    union() {
        left("B");
        right("B");
    }
